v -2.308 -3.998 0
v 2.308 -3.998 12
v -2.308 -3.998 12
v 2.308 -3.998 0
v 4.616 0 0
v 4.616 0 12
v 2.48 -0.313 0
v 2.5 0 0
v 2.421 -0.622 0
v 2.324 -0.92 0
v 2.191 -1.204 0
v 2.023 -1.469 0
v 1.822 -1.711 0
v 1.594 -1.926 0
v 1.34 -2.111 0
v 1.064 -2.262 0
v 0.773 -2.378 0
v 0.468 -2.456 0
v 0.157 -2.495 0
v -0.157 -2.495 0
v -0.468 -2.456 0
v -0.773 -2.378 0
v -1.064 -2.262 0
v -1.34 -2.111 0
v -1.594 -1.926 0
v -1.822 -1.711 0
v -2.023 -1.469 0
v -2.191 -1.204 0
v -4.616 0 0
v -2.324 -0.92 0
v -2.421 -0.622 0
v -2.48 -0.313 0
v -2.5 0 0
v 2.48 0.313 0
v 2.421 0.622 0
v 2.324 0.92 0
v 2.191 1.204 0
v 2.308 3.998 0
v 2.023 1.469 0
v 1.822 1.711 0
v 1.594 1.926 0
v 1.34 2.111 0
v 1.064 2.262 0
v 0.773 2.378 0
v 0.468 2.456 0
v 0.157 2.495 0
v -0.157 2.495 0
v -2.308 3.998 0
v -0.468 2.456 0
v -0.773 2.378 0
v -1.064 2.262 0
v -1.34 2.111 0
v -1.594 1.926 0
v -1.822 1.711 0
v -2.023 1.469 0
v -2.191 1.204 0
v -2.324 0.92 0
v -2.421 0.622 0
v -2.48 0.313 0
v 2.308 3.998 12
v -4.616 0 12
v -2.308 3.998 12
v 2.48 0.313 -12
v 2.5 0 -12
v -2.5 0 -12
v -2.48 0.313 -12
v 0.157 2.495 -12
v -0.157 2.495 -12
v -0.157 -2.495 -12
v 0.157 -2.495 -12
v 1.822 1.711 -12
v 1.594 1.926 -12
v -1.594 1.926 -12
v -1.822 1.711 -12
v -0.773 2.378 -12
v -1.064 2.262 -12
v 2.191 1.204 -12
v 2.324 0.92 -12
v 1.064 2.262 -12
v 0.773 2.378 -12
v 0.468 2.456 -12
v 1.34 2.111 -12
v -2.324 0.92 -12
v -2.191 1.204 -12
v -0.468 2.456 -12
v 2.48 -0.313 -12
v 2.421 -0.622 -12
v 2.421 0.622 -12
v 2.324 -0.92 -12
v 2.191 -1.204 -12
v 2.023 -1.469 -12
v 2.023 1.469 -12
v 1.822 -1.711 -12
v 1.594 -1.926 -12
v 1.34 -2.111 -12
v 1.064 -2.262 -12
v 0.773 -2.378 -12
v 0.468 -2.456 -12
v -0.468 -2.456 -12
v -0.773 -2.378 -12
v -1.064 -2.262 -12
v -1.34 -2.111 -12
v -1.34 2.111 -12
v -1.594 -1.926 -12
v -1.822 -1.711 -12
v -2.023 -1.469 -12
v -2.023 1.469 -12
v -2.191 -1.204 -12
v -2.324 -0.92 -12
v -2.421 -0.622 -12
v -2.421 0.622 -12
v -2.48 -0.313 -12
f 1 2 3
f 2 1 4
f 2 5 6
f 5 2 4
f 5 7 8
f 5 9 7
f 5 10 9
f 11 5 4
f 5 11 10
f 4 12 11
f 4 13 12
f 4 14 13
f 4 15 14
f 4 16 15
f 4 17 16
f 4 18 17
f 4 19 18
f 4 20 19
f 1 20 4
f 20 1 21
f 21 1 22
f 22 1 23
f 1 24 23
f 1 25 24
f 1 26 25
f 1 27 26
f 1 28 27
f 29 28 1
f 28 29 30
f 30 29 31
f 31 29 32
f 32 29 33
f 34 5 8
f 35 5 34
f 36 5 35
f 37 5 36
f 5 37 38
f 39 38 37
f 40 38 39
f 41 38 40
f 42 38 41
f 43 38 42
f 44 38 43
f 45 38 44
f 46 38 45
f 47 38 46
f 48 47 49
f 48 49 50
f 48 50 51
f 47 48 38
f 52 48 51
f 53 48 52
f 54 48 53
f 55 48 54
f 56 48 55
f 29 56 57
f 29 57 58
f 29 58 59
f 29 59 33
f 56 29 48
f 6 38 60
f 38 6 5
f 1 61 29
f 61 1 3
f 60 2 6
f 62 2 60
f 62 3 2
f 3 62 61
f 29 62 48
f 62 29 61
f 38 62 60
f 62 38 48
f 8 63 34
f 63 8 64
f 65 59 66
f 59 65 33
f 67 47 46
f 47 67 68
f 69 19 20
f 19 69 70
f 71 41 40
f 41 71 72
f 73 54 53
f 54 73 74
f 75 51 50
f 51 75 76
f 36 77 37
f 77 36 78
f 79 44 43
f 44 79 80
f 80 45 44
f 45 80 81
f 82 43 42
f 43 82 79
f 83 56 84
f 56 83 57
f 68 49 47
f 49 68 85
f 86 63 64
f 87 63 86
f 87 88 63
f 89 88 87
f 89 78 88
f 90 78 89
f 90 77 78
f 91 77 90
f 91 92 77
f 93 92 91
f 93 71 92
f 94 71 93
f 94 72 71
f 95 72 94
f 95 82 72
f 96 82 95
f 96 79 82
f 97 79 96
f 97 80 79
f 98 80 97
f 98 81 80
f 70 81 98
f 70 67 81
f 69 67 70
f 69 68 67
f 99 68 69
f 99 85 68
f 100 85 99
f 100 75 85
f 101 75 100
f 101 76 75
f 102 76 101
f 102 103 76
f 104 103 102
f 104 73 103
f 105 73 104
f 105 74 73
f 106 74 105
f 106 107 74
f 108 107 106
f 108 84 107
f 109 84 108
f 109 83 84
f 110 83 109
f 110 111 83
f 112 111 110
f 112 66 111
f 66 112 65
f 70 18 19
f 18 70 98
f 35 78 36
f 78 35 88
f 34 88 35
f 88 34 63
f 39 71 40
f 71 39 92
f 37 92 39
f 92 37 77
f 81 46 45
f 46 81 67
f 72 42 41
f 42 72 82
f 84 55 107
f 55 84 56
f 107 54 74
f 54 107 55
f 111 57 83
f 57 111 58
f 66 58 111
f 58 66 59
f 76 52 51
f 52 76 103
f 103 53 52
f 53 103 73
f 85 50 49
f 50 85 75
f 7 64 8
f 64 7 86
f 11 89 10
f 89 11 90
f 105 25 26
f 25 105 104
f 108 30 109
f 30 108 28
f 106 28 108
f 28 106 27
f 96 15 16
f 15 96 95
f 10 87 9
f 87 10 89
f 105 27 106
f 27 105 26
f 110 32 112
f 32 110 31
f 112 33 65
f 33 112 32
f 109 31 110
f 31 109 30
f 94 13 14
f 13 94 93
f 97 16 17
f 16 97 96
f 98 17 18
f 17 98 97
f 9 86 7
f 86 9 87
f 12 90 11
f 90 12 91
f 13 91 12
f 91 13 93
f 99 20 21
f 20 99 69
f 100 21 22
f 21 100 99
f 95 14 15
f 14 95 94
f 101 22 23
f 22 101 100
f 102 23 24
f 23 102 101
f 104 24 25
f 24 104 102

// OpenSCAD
$fn = 50;


difference() {
	union() {
		translate(v = [0, 0, 0]) {
			rotate(a = [0, 0, 0]) {
				translate(v = [0, 0, 0]) {
					rotate(a = [0, 0, 0]) {
						linear_extrude(height = 12) {
							polygon(points = [[4.6160000000, 0.0000000000], [2.3080000000, 3.9975732639], [-2.3080000000, 3.9975732639], [-4.6160000000, 0.0000000000], [-2.3080000000, -3.9975732639], [2.3080000000, -3.9975732639]]);
						}
					}
				}
			}
		}
		translate(v = [0, 0, -12]) {
			rotate(a = [0, 0, 0]) {
				cylinder(h = 12, r = 2.5000000000);
			}
		}
	}
	union();
}
